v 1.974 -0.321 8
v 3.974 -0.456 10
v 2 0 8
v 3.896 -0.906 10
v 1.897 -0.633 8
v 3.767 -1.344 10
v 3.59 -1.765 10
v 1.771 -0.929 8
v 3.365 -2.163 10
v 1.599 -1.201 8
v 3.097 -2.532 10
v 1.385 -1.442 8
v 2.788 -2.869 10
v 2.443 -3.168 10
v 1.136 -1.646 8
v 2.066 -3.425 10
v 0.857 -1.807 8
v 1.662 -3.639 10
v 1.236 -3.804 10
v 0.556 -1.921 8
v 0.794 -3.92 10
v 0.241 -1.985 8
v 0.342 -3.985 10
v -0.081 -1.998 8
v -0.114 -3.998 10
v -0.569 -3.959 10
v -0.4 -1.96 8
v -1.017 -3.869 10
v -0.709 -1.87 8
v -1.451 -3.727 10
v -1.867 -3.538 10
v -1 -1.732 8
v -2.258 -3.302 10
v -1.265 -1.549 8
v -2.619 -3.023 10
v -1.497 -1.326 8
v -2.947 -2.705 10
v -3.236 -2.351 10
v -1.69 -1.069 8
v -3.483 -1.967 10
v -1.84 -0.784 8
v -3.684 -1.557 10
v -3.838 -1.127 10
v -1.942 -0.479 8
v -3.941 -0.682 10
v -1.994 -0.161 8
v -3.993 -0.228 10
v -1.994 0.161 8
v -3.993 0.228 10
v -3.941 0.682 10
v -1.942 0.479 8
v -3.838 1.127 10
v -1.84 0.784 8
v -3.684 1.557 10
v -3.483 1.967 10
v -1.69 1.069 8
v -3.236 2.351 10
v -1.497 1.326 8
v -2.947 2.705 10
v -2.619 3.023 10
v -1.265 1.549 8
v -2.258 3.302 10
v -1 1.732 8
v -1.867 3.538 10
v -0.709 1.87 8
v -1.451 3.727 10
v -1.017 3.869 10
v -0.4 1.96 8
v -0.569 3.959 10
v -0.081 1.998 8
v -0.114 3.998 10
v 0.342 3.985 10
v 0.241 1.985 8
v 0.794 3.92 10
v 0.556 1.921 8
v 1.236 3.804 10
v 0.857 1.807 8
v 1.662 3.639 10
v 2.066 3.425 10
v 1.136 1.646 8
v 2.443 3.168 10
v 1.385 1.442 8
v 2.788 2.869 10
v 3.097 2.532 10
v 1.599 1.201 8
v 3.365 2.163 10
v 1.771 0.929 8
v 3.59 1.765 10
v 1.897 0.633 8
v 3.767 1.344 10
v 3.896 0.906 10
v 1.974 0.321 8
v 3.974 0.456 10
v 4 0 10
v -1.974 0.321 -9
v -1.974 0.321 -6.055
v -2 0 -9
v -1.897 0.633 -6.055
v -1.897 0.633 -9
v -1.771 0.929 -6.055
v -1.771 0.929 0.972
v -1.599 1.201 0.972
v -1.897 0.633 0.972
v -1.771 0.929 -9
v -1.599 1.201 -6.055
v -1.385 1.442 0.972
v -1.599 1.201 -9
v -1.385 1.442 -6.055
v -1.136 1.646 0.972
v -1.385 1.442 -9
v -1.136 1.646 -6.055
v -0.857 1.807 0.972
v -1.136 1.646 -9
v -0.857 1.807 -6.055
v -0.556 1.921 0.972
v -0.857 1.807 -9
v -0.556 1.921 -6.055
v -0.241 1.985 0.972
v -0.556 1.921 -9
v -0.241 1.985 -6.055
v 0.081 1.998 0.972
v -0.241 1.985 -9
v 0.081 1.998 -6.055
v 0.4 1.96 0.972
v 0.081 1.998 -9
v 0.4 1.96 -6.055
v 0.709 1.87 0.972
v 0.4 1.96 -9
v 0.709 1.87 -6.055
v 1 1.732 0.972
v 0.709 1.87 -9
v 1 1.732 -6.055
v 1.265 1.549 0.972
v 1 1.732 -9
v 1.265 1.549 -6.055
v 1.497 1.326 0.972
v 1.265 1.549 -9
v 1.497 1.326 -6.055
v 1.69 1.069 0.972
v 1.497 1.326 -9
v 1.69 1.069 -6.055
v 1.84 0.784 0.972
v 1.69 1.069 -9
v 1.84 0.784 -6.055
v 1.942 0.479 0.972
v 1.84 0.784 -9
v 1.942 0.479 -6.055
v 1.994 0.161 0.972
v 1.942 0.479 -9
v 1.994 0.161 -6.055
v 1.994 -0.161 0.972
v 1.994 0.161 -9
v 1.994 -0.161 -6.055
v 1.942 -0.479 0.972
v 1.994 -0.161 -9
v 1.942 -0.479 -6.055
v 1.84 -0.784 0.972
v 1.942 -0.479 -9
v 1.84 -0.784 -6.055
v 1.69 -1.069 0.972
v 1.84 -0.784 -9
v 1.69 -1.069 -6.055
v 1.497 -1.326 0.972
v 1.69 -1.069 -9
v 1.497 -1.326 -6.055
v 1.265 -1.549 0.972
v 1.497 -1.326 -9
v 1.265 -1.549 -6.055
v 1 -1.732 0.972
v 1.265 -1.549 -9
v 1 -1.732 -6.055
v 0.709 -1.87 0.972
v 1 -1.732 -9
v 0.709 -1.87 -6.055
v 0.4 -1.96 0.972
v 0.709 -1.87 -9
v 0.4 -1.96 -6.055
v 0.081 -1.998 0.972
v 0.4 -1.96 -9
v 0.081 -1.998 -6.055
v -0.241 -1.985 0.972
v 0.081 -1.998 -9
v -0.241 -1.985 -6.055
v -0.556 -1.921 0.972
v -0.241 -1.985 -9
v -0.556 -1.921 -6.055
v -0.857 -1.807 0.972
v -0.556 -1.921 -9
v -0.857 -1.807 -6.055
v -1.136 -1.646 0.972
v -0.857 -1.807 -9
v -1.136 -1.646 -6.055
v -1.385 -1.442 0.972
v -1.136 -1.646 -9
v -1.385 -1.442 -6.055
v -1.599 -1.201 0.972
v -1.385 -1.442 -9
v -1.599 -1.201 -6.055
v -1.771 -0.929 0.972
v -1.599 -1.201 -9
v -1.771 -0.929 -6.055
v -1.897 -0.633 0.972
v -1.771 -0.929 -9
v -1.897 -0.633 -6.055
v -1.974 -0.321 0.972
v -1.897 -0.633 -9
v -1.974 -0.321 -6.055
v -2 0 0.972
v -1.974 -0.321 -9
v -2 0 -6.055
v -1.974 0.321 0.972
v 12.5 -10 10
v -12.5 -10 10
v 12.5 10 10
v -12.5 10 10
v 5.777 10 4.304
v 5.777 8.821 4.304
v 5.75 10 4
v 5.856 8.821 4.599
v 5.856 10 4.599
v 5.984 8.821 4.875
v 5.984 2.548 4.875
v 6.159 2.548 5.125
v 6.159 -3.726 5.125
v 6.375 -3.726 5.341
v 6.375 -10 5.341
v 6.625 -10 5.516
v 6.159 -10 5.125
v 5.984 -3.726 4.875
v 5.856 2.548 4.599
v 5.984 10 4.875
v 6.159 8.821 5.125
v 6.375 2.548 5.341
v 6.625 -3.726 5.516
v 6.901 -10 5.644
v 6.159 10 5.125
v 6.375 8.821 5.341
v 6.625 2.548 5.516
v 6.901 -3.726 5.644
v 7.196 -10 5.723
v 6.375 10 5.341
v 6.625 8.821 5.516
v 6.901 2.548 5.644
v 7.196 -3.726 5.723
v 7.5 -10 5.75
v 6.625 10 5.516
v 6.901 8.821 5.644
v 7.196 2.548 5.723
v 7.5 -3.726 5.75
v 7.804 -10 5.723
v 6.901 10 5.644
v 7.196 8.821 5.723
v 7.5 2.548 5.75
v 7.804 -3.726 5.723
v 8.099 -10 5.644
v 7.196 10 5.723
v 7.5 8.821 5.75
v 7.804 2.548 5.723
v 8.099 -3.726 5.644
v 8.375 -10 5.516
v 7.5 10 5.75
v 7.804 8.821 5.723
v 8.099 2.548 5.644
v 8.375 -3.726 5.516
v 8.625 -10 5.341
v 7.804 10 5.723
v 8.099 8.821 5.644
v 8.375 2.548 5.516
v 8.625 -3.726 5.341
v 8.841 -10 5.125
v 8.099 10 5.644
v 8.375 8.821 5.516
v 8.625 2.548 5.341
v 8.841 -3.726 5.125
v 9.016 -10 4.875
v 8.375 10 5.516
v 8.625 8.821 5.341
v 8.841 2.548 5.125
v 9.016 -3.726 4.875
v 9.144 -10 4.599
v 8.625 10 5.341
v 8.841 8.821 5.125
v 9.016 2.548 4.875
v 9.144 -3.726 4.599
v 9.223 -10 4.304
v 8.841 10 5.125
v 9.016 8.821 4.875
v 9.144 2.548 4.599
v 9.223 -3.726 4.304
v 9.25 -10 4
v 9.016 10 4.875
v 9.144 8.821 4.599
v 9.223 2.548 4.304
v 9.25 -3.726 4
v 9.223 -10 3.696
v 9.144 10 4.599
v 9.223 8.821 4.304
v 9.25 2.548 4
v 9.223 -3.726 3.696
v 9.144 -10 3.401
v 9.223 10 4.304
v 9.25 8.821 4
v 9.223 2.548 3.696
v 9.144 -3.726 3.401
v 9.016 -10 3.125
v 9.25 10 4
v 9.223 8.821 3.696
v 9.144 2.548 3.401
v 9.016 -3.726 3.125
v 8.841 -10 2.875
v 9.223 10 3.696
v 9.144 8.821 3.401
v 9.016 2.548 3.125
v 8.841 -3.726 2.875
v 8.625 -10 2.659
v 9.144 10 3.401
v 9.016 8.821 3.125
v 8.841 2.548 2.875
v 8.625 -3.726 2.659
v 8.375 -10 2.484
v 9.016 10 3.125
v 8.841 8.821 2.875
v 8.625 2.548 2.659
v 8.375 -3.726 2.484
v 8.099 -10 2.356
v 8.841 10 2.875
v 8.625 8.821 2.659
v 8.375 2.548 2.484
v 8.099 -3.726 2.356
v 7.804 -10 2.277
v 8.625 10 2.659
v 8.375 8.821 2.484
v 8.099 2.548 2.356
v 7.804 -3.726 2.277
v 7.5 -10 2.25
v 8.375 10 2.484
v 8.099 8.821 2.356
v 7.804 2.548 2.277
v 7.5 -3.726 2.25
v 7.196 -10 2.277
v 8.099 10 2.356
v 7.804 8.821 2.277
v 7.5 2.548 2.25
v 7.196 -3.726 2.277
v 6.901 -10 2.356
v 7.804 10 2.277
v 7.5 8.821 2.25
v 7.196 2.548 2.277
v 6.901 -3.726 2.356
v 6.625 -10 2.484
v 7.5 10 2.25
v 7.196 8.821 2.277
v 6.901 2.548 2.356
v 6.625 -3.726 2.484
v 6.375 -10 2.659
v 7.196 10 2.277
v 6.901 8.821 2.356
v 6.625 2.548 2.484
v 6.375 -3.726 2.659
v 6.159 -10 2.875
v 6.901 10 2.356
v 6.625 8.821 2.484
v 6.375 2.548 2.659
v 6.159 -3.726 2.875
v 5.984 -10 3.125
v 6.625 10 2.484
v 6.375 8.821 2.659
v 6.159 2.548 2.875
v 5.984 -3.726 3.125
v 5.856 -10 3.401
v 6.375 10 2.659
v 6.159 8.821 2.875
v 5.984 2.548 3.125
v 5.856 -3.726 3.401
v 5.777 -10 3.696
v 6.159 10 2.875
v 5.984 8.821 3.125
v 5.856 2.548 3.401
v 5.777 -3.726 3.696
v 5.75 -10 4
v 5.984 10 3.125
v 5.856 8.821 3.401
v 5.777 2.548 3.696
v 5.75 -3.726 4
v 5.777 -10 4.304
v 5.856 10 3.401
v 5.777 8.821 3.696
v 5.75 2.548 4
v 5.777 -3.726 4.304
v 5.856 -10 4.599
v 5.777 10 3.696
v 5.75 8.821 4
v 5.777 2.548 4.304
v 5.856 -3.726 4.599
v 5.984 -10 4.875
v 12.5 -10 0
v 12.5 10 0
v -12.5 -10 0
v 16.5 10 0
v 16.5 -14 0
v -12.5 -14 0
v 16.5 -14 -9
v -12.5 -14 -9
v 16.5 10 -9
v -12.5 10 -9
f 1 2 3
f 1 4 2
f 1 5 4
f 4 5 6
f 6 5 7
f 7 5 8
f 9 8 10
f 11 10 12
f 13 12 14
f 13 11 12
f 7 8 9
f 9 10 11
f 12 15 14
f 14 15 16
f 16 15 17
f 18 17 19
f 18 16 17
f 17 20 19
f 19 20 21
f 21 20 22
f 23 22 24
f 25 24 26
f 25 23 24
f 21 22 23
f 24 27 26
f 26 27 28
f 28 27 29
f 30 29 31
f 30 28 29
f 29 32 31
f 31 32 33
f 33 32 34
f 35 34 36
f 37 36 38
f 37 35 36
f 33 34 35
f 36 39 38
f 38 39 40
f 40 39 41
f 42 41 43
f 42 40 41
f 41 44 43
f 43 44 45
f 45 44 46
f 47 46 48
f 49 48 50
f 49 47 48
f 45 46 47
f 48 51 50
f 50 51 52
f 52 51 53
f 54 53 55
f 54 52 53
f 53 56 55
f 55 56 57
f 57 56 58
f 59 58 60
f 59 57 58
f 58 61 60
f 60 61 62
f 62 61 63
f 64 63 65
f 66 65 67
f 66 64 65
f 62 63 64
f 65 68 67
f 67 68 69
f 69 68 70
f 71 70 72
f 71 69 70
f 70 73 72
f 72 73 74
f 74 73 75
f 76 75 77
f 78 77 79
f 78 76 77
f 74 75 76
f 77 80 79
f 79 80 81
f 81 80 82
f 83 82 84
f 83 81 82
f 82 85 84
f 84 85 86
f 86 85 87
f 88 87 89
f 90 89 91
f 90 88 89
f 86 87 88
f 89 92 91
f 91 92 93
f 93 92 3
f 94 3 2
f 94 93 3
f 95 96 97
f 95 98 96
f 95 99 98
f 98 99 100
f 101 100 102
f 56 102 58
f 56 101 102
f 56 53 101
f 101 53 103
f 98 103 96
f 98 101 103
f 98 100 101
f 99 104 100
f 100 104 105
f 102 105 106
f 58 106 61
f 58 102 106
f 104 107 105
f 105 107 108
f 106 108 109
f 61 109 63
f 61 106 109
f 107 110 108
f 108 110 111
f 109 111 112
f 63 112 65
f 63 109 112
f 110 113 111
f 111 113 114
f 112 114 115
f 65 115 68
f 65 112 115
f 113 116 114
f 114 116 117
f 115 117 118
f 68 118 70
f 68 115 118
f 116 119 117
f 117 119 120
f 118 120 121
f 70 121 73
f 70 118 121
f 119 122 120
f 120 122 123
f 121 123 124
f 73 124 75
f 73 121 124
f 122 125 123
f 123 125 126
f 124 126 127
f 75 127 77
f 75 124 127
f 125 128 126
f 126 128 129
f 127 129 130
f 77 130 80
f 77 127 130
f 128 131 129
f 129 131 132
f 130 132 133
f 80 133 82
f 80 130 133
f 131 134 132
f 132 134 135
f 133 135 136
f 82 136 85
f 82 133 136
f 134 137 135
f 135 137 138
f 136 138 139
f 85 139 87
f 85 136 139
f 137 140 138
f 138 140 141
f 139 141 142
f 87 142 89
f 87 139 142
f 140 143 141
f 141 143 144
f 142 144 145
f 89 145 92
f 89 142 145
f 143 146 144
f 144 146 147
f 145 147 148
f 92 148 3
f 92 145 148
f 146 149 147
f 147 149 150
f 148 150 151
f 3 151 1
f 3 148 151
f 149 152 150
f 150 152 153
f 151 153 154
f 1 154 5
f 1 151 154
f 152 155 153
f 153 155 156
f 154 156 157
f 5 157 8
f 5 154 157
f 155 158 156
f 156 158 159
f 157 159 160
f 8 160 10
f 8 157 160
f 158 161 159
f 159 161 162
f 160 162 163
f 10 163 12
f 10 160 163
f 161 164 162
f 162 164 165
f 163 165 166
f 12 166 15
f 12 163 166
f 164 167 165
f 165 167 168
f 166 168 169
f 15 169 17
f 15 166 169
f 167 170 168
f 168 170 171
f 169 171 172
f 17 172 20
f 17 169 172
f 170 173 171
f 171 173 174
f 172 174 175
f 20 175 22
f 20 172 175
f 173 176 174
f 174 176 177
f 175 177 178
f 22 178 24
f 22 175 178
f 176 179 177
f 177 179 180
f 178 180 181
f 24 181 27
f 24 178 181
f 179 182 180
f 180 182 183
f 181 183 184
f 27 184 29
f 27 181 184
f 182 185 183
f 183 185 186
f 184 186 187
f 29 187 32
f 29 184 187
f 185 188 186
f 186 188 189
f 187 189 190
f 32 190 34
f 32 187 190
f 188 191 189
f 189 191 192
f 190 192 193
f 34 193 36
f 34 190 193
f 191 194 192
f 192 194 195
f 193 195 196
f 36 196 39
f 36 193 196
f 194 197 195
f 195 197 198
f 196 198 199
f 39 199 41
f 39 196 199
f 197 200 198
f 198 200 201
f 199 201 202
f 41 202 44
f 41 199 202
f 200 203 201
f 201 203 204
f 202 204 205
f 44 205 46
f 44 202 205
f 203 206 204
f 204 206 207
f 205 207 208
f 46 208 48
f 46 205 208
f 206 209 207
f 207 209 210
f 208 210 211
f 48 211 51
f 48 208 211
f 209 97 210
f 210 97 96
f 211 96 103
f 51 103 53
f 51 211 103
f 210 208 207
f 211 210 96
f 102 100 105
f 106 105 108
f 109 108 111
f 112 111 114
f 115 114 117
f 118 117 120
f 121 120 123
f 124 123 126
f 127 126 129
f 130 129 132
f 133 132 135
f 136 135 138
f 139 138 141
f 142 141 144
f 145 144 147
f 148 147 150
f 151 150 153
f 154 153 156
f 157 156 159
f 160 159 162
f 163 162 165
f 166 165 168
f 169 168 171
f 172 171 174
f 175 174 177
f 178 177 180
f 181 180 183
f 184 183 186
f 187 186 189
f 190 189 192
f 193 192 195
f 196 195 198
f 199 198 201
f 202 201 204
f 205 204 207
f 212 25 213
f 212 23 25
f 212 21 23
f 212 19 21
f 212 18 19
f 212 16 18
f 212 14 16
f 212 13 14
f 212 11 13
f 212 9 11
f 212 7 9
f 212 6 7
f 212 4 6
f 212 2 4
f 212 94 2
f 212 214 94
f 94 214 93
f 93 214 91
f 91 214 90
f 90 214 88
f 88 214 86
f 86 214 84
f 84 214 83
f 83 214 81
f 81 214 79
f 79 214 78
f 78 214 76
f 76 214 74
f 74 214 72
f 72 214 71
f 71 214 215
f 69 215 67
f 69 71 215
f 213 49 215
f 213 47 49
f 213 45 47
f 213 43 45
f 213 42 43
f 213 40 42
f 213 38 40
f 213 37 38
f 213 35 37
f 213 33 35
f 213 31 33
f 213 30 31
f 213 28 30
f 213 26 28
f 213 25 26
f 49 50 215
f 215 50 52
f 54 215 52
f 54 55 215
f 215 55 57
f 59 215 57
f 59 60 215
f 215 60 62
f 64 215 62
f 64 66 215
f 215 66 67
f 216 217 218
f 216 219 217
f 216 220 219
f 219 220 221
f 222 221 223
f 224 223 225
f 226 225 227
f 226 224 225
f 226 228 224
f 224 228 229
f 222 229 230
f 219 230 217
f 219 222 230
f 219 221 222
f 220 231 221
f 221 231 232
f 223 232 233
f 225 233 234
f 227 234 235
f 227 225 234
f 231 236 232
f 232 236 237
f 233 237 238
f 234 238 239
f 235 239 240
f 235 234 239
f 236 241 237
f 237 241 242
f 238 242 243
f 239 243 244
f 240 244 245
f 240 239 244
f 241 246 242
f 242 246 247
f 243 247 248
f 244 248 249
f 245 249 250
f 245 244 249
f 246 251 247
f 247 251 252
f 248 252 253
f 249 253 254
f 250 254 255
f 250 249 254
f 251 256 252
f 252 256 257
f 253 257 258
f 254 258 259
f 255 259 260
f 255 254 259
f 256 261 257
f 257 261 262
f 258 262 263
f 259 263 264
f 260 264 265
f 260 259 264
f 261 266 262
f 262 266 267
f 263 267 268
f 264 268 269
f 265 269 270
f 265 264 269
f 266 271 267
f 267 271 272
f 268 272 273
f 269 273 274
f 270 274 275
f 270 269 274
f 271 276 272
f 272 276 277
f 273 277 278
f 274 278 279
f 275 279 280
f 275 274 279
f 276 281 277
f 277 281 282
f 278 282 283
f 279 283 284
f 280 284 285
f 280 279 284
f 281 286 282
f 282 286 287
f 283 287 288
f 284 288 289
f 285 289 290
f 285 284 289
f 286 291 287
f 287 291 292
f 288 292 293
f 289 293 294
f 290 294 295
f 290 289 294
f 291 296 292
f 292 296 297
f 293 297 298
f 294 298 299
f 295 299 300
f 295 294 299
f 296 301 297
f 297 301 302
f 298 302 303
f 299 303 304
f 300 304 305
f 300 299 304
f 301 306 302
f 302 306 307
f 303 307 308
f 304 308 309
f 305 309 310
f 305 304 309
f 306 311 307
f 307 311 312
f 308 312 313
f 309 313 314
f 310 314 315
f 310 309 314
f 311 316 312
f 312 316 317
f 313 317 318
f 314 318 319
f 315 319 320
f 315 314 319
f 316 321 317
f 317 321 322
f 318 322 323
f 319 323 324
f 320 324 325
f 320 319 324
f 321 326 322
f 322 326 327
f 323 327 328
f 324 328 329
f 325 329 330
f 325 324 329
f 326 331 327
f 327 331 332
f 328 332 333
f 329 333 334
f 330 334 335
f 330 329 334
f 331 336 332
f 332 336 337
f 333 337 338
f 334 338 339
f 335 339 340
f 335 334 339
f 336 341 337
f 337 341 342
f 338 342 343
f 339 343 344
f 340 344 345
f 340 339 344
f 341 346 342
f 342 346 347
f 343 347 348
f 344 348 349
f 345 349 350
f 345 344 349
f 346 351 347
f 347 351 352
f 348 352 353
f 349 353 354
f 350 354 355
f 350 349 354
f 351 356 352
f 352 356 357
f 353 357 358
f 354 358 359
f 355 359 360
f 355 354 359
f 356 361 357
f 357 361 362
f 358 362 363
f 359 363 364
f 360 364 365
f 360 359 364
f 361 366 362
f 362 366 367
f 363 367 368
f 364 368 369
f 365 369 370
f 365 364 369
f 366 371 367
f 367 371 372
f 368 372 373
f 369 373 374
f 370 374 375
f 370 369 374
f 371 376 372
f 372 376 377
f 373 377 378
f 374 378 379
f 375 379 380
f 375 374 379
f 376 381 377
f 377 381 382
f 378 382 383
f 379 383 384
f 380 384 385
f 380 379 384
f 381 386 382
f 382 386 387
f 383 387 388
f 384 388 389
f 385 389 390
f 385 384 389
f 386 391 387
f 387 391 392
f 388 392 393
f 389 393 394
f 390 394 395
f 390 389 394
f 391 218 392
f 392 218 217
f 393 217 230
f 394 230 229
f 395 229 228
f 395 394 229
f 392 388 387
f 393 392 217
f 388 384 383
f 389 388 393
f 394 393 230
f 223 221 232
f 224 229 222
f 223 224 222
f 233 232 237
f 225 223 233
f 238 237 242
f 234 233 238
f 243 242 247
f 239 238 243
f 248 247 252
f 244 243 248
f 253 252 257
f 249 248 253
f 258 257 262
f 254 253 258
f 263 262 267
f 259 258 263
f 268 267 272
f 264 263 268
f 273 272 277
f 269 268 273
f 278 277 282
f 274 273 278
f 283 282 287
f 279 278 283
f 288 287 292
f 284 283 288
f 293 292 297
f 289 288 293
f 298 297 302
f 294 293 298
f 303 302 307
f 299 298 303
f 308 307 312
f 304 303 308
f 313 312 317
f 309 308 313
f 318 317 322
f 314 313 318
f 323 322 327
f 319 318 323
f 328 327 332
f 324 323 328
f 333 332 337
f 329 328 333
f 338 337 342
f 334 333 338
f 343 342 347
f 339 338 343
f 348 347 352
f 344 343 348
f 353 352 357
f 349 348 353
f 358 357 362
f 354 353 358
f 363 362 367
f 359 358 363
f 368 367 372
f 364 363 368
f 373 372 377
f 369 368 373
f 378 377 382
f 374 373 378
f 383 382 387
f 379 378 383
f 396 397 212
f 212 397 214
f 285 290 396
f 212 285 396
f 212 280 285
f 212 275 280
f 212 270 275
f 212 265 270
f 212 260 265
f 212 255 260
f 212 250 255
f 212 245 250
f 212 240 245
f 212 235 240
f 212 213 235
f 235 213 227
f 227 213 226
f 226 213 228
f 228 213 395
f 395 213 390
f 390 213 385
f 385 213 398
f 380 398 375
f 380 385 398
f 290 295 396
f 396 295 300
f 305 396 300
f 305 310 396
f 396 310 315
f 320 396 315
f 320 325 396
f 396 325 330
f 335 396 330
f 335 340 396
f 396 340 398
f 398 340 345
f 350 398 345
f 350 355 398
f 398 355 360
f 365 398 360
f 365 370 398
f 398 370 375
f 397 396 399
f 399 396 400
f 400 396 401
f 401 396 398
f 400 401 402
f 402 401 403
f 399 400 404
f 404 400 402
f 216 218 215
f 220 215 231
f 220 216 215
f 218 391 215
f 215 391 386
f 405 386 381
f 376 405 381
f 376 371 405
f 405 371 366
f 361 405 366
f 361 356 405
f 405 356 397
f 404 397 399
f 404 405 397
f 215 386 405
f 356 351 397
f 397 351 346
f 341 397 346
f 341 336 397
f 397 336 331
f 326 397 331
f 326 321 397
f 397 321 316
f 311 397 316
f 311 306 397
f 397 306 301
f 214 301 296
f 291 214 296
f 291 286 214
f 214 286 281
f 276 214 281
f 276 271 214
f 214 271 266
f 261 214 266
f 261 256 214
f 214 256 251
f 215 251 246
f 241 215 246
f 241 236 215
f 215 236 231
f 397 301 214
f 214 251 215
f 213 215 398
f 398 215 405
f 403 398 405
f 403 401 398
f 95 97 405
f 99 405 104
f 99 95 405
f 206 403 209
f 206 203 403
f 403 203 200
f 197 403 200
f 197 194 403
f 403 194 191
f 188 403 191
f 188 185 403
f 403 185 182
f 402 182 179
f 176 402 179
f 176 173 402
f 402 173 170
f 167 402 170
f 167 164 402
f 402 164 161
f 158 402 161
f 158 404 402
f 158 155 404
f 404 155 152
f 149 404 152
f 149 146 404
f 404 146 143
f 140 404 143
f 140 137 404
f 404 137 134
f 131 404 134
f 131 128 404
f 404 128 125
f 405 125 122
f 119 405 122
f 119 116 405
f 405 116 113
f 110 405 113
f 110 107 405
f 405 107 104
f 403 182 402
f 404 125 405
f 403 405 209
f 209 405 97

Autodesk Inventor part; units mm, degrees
ref_plane "YZ Plane" through (0, 0, 0) normal (1, 0, 0) x (0, 1, 0)
ref_plane "XZ Plane" through (0, 0, 0) normal (0, 1, 0) x (-1, 0, 0)
ref_plane "XY Plane" through (0, 0, 0) normal (0, 0, 1) x (1, 0, 0)
sketch "Szkic1" plane through (0, 0, 0) normal (0, 0, 1) x (1, 0, 0)
  line L0 (-12.5, -10) -> (12.5, -10)
  line L1 (12.5, -10) -> (12.5, 10)
  line L2 (12.5, 10) -> (-12.5, 10)
  line L3 (-12.5, 10) -> (-12.5, -10)
  line L4 (-12.5, -10) -> (12.5, 10) construction
  line L5 (12.5, -10) -> (-12.5, 10) construction
  line L6 (-12.5, 10) -> (16.5, 10)
  line L7 (16.5, 10) -> (16.5, -14)
  line L8 (16.5, -14) -> (-12.5, -14)
  line L9 (-12.5, -14) -> (-12.5, 10)
  point P0 (0, 0)
  dimension "d0" = 25
  dimension "d1" = 20
  dimension "d2" = 4
  dimension "d3" = 4
extrude "Wyciągnięcie proste1" add sketch "Szkic1" against normal blind 9
extrude "Wyciągnięcie proste2" add sketch "Szkic1" along normal blind 10 contours L3 L2 L1 L0
sketch "Szkic2" plane through (0, 0, 10) normal (0, 0, 1) x (1, 0, 0)
  point P0 (0, 0)
  point P1 (0, 0)
sketch "Szkic3" plane through (-12.5, -10, 0) normal (0, -1, 0) x (1, 0, 0)
  line L0 (25, 0) -> (0, 0) projected
  line L1 (25, 0) -> (25, 10) projected
  point P0 (12.5, 0)
  point P1 (20, 4)
  dimension "d8" = 5
  dimension "d9" = 4
hole "Otwór1" at (7.5, -10, 4) direction (0, 1, 0) diameter 3.5 end through all
hole "Otwór2" at (0, 0, 10) direction (0, 0, -1) diameter 4 end through all
chamfer "Faza1" distance 2 angle 45 1 edges at (0, 2, 10)
properties part number "table_mount"
